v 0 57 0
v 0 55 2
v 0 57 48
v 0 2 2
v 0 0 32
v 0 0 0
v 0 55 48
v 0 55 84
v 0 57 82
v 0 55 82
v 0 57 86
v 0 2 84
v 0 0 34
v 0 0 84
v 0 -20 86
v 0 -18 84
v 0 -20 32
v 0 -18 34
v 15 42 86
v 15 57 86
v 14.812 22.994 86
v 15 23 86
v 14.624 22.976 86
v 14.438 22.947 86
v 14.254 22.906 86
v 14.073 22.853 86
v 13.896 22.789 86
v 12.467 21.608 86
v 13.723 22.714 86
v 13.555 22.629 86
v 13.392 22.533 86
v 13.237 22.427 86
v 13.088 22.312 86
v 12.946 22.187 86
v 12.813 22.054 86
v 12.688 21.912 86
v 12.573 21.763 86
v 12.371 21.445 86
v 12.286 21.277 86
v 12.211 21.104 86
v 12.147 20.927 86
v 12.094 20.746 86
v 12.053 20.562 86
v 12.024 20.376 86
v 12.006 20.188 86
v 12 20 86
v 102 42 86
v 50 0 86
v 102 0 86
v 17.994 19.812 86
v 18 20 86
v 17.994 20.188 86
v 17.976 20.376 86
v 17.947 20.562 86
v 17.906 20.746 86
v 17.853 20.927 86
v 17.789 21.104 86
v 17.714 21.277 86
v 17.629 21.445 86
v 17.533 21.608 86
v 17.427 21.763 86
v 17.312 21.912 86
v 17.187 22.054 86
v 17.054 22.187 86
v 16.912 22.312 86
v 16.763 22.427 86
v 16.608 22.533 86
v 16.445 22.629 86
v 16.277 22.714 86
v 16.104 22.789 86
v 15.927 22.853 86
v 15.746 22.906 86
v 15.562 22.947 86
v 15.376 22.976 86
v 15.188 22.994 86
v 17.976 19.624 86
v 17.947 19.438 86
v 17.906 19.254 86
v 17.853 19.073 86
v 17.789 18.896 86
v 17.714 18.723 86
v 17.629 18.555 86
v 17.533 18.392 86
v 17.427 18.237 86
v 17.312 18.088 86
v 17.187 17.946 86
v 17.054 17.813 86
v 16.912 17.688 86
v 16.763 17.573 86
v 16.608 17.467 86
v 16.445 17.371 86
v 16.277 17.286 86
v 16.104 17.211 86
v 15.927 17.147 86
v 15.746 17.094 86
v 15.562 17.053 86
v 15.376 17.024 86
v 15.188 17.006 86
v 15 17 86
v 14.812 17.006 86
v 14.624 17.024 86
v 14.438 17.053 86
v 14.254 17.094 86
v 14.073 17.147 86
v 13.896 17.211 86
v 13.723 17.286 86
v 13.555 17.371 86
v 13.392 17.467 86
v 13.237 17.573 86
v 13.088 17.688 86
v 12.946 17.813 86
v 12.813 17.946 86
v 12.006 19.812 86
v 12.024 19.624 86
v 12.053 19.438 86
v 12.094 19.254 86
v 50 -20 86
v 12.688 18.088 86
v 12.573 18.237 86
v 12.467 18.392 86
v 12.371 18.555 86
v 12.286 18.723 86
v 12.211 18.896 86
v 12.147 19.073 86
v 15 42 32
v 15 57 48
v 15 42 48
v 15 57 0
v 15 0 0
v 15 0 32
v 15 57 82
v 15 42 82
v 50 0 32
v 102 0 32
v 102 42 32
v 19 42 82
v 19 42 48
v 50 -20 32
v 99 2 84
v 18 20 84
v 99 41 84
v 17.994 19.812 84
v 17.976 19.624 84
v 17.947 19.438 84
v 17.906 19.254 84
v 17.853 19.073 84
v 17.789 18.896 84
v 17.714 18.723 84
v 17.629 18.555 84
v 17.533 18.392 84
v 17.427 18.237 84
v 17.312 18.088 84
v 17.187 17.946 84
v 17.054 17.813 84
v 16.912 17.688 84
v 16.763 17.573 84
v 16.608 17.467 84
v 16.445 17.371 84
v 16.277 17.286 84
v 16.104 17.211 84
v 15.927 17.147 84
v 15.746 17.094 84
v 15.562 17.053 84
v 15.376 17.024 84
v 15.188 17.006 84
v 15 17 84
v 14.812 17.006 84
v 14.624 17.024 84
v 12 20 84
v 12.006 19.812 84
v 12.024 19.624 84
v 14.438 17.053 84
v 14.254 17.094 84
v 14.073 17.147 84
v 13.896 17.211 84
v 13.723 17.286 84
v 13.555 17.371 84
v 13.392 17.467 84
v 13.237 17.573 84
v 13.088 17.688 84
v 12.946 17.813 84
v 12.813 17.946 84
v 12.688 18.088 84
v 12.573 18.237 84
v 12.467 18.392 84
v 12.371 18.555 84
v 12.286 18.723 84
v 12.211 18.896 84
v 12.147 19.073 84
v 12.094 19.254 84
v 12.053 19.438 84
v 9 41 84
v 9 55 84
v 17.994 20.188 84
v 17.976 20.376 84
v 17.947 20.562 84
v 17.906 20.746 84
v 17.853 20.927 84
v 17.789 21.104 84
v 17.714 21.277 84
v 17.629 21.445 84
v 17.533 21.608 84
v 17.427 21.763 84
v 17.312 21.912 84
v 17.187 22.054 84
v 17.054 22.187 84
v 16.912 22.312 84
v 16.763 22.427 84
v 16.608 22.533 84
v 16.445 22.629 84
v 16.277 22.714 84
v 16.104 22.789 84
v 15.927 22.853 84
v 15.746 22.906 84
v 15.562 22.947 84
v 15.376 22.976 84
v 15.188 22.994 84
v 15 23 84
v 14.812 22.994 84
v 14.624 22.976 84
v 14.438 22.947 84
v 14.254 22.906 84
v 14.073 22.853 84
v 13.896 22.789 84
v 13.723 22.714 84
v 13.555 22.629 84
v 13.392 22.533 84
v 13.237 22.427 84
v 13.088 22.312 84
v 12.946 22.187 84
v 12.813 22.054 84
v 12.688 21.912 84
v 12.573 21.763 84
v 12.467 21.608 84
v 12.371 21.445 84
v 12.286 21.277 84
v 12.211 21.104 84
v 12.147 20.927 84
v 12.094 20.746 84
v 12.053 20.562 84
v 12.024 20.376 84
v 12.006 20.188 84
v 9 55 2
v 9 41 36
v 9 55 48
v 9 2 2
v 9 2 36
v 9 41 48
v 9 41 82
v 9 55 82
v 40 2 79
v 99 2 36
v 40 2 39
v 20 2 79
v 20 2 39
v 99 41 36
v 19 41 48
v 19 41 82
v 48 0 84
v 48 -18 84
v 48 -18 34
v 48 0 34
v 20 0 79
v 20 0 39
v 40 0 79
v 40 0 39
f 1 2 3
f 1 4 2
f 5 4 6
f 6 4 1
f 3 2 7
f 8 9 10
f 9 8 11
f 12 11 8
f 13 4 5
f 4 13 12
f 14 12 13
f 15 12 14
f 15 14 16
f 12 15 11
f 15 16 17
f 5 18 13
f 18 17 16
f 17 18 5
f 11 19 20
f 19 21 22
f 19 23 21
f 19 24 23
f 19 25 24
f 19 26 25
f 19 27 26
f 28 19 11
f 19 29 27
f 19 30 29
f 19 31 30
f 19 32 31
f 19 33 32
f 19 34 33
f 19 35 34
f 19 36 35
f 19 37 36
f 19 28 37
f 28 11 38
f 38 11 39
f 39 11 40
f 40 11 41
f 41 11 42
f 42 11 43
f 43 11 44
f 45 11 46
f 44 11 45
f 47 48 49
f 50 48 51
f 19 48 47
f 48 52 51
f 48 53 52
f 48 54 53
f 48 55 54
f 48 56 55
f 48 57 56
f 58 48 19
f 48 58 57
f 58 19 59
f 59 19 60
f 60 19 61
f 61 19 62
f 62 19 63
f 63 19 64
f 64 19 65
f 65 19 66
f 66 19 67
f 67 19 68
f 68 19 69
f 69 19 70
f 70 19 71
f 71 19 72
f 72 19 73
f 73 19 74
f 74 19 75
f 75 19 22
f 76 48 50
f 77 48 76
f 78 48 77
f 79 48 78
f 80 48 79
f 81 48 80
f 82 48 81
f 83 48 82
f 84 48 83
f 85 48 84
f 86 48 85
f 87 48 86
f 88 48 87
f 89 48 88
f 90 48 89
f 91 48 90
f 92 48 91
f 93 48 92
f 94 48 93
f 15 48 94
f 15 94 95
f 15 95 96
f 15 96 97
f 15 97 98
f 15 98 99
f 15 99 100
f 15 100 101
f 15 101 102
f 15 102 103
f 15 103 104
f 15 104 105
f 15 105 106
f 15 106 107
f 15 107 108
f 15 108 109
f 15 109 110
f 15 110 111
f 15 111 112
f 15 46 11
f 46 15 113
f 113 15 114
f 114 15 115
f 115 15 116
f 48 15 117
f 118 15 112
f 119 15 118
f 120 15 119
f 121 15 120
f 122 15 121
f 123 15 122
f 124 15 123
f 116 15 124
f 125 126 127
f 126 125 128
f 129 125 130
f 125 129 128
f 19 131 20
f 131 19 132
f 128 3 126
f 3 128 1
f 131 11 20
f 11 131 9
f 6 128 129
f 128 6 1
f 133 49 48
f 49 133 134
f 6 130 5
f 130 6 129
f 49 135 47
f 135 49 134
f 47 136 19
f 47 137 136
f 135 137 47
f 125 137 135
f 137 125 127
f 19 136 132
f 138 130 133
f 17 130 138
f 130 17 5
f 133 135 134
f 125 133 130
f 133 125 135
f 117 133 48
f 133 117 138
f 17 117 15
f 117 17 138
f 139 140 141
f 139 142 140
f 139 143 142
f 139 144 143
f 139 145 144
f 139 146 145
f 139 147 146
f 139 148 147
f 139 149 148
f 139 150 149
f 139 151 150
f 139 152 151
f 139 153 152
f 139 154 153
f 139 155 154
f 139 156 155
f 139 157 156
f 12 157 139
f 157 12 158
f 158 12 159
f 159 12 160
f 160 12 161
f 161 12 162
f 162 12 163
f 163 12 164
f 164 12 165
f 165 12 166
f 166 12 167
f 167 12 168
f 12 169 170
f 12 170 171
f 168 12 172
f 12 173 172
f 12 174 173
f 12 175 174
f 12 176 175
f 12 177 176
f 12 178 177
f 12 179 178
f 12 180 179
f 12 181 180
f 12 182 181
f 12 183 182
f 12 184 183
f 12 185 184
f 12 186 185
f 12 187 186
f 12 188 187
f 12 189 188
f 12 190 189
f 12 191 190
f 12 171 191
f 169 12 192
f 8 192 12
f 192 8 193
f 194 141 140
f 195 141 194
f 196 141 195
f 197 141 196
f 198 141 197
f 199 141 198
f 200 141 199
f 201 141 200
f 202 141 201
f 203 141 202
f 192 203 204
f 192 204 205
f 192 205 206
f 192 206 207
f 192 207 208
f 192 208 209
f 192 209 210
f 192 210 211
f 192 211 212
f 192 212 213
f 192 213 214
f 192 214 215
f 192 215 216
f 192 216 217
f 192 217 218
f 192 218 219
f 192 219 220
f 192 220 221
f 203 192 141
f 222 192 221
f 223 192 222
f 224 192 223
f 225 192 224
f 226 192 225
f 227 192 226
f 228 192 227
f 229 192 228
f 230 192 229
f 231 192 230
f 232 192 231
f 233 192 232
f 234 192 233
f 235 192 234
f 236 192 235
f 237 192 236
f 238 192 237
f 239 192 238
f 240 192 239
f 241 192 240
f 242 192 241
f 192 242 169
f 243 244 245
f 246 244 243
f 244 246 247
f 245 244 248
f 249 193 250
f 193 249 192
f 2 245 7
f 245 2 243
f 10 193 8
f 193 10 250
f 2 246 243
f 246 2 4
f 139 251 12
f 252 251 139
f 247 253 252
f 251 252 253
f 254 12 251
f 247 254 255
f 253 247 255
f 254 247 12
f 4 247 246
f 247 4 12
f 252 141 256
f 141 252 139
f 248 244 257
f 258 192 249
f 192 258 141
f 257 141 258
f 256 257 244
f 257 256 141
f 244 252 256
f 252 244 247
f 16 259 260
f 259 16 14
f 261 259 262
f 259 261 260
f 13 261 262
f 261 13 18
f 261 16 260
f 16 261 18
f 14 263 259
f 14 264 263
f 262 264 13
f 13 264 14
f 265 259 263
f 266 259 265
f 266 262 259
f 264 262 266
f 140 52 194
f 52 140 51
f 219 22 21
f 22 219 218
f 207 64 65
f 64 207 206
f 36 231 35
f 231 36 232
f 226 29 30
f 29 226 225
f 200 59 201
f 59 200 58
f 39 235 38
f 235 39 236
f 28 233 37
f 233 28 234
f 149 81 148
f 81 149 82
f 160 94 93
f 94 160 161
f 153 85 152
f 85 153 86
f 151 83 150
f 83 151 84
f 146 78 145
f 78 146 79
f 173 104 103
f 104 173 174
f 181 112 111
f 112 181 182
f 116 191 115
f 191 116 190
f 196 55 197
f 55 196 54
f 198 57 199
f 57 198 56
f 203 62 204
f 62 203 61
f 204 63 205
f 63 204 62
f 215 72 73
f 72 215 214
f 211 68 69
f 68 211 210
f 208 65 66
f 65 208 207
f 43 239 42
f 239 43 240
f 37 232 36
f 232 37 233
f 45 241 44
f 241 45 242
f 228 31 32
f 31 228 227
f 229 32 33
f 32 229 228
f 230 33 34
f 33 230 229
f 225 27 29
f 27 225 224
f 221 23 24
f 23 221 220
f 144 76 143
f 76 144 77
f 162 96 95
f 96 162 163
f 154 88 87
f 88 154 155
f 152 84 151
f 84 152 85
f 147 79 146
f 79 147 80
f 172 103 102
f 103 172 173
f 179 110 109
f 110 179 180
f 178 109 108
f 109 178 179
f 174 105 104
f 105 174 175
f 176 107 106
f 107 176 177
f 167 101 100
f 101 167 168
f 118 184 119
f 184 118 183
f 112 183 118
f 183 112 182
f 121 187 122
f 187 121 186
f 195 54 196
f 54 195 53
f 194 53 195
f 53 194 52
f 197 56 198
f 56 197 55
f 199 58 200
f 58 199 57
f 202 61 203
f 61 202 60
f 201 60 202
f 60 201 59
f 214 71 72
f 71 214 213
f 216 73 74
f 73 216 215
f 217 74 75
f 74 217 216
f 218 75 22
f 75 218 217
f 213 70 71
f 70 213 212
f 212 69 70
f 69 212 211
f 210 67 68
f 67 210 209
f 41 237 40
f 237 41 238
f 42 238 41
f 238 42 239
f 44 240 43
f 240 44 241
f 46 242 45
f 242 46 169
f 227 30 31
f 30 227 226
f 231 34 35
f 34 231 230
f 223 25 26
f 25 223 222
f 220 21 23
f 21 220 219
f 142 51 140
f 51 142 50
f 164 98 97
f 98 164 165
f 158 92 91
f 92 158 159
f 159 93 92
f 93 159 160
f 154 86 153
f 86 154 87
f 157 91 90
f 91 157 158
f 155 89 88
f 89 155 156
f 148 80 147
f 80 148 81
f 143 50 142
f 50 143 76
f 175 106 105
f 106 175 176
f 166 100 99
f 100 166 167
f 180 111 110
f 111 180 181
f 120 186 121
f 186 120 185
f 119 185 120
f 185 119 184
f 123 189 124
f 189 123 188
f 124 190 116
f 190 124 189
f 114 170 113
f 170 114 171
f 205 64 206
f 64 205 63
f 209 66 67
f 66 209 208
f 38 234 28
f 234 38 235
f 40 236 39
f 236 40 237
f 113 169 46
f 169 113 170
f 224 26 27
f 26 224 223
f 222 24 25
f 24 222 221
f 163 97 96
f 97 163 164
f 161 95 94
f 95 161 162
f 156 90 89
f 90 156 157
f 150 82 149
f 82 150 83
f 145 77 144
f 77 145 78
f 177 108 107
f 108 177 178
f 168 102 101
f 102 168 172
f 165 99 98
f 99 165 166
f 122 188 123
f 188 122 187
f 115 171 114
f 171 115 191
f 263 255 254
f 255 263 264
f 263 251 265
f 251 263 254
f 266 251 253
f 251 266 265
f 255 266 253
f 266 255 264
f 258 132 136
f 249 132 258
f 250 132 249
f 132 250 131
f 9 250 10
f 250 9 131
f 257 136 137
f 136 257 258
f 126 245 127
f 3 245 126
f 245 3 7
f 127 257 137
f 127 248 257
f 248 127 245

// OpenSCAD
difference() {
    union() {
        cube([15, 57, 86]);
        
        // Ausbeulungen für Kabel
        translate([0, 0, 32]) {
            cube([102, 42, 54]);
        }
        translate([0, -20, 32]) {
            cube([50, 20, 54]);
        }
    }
    
    // Aushöhlen der Rechtecke
    translate([-1, 2, 2]) {
        cube([10, 53, 82]);
    }
    translate([-1, 2, 36]) {
        cube([100, 39, 48]);
    }
    translate([-2, -18, 34]) {
        cube([50, 18, 50]);
    }
    
    // Aussparung für Sensorkabel
    translate([15, 20, 82]) {
        rotate([0, 0, 0]) {
            cylinder(h=8, r1=3, r2=3, $fn=100); 
        }
    }
    translate([20, -2, 39]) { 
        cube([20, 5, 40]);
    }
    
    // Aussparung fuer Display
    translate([-1, 40, 48]) { 
        cube([20, 18, 34]);
    }
}
